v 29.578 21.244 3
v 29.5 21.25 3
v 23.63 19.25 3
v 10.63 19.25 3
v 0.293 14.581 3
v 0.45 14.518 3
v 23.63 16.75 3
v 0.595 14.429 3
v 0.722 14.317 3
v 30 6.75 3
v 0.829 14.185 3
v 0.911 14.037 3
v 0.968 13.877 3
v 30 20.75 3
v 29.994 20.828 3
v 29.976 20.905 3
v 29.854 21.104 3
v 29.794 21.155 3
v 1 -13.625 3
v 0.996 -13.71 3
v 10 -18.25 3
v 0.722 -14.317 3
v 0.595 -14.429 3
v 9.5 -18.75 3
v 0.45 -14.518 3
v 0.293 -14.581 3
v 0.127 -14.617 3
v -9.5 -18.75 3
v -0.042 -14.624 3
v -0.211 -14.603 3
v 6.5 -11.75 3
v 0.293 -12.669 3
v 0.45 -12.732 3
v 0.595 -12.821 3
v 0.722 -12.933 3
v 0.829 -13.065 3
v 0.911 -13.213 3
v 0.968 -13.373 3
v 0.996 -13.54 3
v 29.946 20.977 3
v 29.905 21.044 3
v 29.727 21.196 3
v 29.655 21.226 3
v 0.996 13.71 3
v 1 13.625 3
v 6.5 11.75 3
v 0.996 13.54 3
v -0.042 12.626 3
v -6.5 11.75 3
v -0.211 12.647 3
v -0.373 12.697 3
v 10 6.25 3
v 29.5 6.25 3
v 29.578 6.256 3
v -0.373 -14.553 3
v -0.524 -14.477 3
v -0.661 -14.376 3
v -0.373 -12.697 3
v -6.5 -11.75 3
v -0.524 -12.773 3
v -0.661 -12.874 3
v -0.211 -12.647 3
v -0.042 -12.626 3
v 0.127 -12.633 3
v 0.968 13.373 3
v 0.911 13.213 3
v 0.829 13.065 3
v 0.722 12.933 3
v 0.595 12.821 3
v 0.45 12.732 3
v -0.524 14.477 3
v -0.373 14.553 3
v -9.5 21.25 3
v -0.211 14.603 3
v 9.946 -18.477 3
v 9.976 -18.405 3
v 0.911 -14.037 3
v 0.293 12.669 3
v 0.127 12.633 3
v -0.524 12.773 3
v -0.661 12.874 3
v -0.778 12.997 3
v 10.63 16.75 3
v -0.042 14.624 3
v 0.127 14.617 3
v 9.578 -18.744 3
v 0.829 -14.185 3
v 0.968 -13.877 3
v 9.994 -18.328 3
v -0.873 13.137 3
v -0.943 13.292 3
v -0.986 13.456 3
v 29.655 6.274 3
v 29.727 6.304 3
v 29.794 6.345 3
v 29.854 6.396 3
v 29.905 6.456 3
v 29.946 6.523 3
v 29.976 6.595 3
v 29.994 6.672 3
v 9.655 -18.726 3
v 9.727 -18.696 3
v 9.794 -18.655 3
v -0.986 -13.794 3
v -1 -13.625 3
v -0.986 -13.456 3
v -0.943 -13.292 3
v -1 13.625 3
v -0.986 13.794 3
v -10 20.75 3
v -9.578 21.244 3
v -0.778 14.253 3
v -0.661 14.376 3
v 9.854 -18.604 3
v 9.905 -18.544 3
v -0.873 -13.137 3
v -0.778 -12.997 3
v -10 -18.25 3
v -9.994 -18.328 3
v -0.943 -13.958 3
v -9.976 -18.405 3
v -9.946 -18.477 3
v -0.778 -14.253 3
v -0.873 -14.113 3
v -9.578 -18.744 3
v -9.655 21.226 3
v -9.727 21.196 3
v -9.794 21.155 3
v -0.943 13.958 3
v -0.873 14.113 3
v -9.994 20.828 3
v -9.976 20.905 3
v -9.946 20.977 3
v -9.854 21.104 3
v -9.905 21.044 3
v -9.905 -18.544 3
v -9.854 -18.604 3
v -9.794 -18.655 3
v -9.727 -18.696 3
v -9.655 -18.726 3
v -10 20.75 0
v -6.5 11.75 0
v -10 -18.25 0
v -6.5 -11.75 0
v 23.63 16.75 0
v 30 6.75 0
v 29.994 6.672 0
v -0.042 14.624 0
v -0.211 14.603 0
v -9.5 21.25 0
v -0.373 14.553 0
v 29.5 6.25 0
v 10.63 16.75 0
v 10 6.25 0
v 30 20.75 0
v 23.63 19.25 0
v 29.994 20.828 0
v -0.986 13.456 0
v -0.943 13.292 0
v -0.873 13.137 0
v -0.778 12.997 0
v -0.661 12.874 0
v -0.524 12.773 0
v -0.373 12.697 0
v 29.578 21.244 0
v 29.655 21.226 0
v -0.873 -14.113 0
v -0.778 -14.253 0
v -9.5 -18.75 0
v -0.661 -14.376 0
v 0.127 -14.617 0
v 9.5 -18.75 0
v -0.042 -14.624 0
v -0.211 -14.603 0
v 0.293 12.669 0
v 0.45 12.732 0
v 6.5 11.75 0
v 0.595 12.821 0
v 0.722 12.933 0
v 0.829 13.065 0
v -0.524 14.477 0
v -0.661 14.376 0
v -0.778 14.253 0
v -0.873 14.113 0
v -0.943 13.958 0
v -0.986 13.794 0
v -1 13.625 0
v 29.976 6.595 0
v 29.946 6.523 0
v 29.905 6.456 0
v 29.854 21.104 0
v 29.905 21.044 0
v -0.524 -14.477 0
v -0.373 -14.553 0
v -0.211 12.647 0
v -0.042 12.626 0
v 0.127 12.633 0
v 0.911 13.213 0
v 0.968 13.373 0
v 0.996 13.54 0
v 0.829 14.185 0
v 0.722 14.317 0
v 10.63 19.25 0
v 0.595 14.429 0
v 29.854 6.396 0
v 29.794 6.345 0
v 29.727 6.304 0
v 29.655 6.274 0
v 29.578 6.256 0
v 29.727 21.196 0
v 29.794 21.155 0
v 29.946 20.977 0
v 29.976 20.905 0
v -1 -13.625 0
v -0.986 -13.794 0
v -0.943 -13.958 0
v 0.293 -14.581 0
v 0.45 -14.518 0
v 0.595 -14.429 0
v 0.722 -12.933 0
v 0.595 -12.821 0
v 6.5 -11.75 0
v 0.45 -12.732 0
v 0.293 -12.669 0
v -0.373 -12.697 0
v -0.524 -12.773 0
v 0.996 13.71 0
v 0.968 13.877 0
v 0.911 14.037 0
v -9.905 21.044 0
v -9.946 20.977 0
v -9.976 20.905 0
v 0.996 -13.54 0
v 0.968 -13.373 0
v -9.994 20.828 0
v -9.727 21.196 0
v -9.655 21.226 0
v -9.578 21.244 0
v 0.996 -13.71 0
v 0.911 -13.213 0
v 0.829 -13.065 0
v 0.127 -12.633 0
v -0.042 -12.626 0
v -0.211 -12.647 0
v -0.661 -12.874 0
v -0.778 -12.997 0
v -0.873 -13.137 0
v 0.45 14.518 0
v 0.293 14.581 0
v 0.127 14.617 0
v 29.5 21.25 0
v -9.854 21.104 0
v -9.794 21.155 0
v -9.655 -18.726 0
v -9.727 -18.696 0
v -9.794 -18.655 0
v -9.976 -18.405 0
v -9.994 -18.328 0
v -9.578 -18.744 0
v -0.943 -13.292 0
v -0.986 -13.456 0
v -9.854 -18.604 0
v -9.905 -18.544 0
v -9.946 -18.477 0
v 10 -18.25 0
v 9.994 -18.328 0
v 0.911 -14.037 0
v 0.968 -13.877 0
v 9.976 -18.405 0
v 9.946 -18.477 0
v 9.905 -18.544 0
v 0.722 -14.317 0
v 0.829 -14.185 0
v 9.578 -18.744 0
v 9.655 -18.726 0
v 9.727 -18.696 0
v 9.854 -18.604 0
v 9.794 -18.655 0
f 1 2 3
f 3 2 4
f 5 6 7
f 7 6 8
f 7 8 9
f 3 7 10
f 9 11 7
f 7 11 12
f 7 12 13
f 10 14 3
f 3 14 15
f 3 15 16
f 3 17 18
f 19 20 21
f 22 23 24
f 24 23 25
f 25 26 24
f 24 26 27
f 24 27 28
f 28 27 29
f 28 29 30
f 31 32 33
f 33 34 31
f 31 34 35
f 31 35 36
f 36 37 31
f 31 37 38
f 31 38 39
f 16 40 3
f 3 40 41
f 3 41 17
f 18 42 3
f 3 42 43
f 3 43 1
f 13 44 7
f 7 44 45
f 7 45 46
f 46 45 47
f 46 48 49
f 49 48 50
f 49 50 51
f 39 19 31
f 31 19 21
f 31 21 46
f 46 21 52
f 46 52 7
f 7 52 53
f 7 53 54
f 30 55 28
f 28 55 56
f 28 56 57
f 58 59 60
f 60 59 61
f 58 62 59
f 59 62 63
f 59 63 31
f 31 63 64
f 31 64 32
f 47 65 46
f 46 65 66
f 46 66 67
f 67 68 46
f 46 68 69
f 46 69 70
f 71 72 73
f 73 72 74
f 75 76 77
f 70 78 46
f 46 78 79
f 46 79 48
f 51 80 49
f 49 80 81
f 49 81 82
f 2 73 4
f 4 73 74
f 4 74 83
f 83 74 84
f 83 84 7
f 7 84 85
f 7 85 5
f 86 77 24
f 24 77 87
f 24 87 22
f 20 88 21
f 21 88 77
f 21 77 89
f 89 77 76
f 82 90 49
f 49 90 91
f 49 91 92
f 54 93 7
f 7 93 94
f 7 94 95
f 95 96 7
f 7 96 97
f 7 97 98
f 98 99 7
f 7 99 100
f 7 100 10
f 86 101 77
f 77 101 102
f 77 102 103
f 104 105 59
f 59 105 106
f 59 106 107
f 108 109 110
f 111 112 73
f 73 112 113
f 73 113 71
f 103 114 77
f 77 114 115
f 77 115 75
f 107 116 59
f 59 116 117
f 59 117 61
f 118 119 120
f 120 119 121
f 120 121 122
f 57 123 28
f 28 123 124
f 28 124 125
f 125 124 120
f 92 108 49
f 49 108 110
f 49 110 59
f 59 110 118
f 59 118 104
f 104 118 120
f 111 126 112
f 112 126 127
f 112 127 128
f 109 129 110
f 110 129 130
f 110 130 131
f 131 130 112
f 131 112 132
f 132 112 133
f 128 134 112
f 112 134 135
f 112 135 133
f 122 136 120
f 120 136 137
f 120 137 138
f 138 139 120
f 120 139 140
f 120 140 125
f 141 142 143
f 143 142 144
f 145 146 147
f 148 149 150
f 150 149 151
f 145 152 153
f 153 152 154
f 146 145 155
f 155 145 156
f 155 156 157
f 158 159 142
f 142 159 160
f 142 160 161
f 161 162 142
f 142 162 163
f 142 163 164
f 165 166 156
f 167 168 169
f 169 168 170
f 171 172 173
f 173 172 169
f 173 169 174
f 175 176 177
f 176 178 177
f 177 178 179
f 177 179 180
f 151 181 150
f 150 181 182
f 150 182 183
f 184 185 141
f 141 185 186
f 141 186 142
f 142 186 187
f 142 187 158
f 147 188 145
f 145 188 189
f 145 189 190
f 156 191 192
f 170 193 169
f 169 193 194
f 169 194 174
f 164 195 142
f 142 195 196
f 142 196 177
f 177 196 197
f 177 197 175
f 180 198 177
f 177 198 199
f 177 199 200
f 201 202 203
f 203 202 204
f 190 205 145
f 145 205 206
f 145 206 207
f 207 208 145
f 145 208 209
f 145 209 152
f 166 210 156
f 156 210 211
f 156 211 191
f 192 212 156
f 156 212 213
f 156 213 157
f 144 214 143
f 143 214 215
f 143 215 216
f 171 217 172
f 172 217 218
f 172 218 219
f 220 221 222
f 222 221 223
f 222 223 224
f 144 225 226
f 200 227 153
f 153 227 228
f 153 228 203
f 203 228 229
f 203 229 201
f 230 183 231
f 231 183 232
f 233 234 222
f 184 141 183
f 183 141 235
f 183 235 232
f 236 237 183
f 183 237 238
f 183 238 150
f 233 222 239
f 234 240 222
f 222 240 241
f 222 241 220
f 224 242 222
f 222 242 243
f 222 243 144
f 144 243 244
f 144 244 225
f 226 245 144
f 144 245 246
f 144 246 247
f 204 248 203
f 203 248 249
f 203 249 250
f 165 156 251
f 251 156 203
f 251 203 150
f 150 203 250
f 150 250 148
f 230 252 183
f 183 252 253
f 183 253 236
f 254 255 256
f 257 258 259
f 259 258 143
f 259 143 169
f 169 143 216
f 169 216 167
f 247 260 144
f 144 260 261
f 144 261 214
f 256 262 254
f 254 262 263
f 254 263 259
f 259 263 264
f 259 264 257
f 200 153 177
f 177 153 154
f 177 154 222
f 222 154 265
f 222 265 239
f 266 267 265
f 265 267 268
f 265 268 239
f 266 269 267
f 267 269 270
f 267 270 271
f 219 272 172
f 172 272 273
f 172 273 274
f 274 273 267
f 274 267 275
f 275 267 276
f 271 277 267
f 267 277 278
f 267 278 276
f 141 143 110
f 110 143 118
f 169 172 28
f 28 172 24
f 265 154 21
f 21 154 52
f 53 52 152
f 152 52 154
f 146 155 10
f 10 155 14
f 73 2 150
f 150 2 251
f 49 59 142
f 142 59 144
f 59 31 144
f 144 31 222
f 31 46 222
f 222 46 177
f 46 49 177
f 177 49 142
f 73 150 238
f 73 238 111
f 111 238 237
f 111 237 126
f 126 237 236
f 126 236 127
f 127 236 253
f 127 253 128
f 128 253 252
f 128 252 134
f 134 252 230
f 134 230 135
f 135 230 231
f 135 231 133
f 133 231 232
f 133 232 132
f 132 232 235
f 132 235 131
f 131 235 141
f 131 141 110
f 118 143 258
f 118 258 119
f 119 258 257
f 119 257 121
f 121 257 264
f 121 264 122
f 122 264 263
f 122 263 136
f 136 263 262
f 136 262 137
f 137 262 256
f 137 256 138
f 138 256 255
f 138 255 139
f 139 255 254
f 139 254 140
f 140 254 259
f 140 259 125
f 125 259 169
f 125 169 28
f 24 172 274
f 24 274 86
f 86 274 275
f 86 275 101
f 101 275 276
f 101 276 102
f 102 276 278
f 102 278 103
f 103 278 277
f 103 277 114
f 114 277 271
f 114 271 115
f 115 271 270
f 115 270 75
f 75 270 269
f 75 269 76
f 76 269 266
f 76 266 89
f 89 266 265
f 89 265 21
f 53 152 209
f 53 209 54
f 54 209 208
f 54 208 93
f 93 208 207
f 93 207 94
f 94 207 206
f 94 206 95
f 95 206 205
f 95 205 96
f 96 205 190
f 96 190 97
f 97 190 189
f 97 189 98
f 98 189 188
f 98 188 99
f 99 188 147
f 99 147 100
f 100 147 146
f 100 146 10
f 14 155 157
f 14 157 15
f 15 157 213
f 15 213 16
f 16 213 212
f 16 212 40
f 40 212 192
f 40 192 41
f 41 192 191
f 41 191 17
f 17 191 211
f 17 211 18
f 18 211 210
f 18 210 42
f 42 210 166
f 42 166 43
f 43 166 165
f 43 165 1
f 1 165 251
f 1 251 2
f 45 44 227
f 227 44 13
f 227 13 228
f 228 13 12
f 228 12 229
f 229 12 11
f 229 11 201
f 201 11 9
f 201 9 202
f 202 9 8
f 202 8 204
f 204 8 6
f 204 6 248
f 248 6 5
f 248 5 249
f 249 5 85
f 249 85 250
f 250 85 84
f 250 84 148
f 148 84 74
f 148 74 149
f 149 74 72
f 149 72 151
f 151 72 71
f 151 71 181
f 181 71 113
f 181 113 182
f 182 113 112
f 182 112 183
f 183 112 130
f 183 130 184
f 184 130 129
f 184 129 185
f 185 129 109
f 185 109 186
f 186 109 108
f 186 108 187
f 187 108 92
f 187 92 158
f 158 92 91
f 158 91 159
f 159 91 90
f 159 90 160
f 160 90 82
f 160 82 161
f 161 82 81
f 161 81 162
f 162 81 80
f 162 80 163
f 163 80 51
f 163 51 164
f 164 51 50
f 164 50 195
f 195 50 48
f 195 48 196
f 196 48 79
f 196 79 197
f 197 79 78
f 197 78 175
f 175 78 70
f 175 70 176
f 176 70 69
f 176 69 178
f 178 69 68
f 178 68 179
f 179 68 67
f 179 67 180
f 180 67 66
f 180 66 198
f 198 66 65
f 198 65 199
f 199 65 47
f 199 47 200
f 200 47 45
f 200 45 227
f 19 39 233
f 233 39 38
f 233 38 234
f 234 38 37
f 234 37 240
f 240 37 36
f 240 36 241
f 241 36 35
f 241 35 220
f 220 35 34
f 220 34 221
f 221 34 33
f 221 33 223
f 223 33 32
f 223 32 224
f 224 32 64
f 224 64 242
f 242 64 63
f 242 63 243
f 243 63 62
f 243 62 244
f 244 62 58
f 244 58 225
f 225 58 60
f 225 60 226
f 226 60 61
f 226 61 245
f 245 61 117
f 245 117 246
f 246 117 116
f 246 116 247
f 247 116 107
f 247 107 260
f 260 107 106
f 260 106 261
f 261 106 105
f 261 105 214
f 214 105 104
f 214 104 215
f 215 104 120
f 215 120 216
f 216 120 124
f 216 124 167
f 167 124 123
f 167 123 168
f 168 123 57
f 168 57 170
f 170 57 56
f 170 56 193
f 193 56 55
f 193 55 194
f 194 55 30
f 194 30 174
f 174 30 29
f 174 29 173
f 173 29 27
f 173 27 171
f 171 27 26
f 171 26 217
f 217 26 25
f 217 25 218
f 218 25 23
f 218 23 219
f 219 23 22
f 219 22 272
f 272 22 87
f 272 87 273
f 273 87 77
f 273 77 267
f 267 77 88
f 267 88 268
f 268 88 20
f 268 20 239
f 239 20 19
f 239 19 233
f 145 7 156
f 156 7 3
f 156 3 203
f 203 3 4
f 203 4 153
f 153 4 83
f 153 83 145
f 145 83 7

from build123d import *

# Parameters (mm, degrees)
IZIM1_W                     = 13
IZIM1_H                     = 23.5
Y_KSEKLIK_EKSTR_ZYON1_DEPTH = 3
RADYUS1_R                   = 0.5
KES_EKSTR_ZYON1_REACH       = 38.886
IZIM5_R                     = 1
KES_EKSTR_ZYON2_REACH       = 38.886
IZIM6_W                     = 13
IZIM6_H                     = 2.5


with BuildPart() as part:
    # Çizim1 → Yükseklik-Ekstrüzyon1 (new body)
    with BuildSketch(Plane.XY):
        Polygon((10, 21.25), (30, 21.25), (30, 6.25), (10, 6.25), (10, -18.75), (-10, -18.75), (-10, 21.25), align=None)
        Rectangle(IZIM1_W, IZIM1_H, mode=Mode.SUBTRACT)
    extrude(amount=Y_KSEKLIK_EKSTR_ZYON1_DEPTH)

    # Radyus1
    radyus1_edges = [part.edges().sort_by_distance(p)[0] for p in [
        (-10, 21.25, 1.5),
        (30, 21.25, 1.5),
        (30, 6.25, 1.5),
        (10, -18.75, 1.5),
        (-10, -18.75, 1.5),
    ]]
    fillet(radyus1_edges, radius=RADYUS1_R)

    # Çizim5 → Kes-Ekstrüzyon1 (cut, up to next)
    with BuildSketch(Plane(origin=(0, 0, 0), x_dir=(-1, 0, 0), z_dir=(0, 0, -1)), mode=Mode.PRIVATE) as kes_ekstr_zyon1_sk1:
        with Locations((0, 13.625)):
            Circle(IZIM5_R)
    kes_ekstr_zyon1_tool1 = extrude(kes_ekstr_zyon1_sk1.sketch, amount=-KES_EKSTR_ZYON1_REACH, mode=Mode.PRIVATE) & part.part
    # Çizim5 → Kes-Ekstrüzyon1 (cut, up to next)
    with BuildSketch(Plane(origin=(0, 0, 0), x_dir=(-1, 0, 0), z_dir=(0, 0, -1)), mode=Mode.PRIVATE) as kes_ekstr_zyon1_sk2:
        with Locations((0, -13.625)):
            Circle(IZIM5_R)
    kes_ekstr_zyon1_tool2 = extrude(kes_ekstr_zyon1_sk2.sketch, amount=-KES_EKSTR_ZYON1_REACH, mode=Mode.PRIVATE) & part.part
    add(kes_ekstr_zyon1_tool1.solids().sort_by_distance((0, 13.625, 0))[0], mode=Mode.SUBTRACT)
    add(kes_ekstr_zyon1_tool2.solids().sort_by_distance((0, -13.625, 0))[0], mode=Mode.SUBTRACT)

    # Çizim6 → Kes-Ekstrüzyon2 (cut, up to next)
    with BuildSketch(Plane(origin=(0, 0, 0), x_dir=(-1, 0, 0), z_dir=(0, 0, -1)), mode=Mode.PRIVATE) as kes_ekstr_zyon2_sk1:
        with Locations((-17.130228212, 18)):
            Rectangle(IZIM6_W, IZIM6_H)
    kes_ekstr_zyon2_tool1 = extrude(kes_ekstr_zyon2_sk1.sketch, amount=-KES_EKSTR_ZYON2_REACH, mode=Mode.PRIVATE) & part.part
    add(kes_ekstr_zyon2_tool1.solids().sort_by_distance((17.130228, 18, 0))[0], mode=Mode.SUBTRACT)


solid = part.part
